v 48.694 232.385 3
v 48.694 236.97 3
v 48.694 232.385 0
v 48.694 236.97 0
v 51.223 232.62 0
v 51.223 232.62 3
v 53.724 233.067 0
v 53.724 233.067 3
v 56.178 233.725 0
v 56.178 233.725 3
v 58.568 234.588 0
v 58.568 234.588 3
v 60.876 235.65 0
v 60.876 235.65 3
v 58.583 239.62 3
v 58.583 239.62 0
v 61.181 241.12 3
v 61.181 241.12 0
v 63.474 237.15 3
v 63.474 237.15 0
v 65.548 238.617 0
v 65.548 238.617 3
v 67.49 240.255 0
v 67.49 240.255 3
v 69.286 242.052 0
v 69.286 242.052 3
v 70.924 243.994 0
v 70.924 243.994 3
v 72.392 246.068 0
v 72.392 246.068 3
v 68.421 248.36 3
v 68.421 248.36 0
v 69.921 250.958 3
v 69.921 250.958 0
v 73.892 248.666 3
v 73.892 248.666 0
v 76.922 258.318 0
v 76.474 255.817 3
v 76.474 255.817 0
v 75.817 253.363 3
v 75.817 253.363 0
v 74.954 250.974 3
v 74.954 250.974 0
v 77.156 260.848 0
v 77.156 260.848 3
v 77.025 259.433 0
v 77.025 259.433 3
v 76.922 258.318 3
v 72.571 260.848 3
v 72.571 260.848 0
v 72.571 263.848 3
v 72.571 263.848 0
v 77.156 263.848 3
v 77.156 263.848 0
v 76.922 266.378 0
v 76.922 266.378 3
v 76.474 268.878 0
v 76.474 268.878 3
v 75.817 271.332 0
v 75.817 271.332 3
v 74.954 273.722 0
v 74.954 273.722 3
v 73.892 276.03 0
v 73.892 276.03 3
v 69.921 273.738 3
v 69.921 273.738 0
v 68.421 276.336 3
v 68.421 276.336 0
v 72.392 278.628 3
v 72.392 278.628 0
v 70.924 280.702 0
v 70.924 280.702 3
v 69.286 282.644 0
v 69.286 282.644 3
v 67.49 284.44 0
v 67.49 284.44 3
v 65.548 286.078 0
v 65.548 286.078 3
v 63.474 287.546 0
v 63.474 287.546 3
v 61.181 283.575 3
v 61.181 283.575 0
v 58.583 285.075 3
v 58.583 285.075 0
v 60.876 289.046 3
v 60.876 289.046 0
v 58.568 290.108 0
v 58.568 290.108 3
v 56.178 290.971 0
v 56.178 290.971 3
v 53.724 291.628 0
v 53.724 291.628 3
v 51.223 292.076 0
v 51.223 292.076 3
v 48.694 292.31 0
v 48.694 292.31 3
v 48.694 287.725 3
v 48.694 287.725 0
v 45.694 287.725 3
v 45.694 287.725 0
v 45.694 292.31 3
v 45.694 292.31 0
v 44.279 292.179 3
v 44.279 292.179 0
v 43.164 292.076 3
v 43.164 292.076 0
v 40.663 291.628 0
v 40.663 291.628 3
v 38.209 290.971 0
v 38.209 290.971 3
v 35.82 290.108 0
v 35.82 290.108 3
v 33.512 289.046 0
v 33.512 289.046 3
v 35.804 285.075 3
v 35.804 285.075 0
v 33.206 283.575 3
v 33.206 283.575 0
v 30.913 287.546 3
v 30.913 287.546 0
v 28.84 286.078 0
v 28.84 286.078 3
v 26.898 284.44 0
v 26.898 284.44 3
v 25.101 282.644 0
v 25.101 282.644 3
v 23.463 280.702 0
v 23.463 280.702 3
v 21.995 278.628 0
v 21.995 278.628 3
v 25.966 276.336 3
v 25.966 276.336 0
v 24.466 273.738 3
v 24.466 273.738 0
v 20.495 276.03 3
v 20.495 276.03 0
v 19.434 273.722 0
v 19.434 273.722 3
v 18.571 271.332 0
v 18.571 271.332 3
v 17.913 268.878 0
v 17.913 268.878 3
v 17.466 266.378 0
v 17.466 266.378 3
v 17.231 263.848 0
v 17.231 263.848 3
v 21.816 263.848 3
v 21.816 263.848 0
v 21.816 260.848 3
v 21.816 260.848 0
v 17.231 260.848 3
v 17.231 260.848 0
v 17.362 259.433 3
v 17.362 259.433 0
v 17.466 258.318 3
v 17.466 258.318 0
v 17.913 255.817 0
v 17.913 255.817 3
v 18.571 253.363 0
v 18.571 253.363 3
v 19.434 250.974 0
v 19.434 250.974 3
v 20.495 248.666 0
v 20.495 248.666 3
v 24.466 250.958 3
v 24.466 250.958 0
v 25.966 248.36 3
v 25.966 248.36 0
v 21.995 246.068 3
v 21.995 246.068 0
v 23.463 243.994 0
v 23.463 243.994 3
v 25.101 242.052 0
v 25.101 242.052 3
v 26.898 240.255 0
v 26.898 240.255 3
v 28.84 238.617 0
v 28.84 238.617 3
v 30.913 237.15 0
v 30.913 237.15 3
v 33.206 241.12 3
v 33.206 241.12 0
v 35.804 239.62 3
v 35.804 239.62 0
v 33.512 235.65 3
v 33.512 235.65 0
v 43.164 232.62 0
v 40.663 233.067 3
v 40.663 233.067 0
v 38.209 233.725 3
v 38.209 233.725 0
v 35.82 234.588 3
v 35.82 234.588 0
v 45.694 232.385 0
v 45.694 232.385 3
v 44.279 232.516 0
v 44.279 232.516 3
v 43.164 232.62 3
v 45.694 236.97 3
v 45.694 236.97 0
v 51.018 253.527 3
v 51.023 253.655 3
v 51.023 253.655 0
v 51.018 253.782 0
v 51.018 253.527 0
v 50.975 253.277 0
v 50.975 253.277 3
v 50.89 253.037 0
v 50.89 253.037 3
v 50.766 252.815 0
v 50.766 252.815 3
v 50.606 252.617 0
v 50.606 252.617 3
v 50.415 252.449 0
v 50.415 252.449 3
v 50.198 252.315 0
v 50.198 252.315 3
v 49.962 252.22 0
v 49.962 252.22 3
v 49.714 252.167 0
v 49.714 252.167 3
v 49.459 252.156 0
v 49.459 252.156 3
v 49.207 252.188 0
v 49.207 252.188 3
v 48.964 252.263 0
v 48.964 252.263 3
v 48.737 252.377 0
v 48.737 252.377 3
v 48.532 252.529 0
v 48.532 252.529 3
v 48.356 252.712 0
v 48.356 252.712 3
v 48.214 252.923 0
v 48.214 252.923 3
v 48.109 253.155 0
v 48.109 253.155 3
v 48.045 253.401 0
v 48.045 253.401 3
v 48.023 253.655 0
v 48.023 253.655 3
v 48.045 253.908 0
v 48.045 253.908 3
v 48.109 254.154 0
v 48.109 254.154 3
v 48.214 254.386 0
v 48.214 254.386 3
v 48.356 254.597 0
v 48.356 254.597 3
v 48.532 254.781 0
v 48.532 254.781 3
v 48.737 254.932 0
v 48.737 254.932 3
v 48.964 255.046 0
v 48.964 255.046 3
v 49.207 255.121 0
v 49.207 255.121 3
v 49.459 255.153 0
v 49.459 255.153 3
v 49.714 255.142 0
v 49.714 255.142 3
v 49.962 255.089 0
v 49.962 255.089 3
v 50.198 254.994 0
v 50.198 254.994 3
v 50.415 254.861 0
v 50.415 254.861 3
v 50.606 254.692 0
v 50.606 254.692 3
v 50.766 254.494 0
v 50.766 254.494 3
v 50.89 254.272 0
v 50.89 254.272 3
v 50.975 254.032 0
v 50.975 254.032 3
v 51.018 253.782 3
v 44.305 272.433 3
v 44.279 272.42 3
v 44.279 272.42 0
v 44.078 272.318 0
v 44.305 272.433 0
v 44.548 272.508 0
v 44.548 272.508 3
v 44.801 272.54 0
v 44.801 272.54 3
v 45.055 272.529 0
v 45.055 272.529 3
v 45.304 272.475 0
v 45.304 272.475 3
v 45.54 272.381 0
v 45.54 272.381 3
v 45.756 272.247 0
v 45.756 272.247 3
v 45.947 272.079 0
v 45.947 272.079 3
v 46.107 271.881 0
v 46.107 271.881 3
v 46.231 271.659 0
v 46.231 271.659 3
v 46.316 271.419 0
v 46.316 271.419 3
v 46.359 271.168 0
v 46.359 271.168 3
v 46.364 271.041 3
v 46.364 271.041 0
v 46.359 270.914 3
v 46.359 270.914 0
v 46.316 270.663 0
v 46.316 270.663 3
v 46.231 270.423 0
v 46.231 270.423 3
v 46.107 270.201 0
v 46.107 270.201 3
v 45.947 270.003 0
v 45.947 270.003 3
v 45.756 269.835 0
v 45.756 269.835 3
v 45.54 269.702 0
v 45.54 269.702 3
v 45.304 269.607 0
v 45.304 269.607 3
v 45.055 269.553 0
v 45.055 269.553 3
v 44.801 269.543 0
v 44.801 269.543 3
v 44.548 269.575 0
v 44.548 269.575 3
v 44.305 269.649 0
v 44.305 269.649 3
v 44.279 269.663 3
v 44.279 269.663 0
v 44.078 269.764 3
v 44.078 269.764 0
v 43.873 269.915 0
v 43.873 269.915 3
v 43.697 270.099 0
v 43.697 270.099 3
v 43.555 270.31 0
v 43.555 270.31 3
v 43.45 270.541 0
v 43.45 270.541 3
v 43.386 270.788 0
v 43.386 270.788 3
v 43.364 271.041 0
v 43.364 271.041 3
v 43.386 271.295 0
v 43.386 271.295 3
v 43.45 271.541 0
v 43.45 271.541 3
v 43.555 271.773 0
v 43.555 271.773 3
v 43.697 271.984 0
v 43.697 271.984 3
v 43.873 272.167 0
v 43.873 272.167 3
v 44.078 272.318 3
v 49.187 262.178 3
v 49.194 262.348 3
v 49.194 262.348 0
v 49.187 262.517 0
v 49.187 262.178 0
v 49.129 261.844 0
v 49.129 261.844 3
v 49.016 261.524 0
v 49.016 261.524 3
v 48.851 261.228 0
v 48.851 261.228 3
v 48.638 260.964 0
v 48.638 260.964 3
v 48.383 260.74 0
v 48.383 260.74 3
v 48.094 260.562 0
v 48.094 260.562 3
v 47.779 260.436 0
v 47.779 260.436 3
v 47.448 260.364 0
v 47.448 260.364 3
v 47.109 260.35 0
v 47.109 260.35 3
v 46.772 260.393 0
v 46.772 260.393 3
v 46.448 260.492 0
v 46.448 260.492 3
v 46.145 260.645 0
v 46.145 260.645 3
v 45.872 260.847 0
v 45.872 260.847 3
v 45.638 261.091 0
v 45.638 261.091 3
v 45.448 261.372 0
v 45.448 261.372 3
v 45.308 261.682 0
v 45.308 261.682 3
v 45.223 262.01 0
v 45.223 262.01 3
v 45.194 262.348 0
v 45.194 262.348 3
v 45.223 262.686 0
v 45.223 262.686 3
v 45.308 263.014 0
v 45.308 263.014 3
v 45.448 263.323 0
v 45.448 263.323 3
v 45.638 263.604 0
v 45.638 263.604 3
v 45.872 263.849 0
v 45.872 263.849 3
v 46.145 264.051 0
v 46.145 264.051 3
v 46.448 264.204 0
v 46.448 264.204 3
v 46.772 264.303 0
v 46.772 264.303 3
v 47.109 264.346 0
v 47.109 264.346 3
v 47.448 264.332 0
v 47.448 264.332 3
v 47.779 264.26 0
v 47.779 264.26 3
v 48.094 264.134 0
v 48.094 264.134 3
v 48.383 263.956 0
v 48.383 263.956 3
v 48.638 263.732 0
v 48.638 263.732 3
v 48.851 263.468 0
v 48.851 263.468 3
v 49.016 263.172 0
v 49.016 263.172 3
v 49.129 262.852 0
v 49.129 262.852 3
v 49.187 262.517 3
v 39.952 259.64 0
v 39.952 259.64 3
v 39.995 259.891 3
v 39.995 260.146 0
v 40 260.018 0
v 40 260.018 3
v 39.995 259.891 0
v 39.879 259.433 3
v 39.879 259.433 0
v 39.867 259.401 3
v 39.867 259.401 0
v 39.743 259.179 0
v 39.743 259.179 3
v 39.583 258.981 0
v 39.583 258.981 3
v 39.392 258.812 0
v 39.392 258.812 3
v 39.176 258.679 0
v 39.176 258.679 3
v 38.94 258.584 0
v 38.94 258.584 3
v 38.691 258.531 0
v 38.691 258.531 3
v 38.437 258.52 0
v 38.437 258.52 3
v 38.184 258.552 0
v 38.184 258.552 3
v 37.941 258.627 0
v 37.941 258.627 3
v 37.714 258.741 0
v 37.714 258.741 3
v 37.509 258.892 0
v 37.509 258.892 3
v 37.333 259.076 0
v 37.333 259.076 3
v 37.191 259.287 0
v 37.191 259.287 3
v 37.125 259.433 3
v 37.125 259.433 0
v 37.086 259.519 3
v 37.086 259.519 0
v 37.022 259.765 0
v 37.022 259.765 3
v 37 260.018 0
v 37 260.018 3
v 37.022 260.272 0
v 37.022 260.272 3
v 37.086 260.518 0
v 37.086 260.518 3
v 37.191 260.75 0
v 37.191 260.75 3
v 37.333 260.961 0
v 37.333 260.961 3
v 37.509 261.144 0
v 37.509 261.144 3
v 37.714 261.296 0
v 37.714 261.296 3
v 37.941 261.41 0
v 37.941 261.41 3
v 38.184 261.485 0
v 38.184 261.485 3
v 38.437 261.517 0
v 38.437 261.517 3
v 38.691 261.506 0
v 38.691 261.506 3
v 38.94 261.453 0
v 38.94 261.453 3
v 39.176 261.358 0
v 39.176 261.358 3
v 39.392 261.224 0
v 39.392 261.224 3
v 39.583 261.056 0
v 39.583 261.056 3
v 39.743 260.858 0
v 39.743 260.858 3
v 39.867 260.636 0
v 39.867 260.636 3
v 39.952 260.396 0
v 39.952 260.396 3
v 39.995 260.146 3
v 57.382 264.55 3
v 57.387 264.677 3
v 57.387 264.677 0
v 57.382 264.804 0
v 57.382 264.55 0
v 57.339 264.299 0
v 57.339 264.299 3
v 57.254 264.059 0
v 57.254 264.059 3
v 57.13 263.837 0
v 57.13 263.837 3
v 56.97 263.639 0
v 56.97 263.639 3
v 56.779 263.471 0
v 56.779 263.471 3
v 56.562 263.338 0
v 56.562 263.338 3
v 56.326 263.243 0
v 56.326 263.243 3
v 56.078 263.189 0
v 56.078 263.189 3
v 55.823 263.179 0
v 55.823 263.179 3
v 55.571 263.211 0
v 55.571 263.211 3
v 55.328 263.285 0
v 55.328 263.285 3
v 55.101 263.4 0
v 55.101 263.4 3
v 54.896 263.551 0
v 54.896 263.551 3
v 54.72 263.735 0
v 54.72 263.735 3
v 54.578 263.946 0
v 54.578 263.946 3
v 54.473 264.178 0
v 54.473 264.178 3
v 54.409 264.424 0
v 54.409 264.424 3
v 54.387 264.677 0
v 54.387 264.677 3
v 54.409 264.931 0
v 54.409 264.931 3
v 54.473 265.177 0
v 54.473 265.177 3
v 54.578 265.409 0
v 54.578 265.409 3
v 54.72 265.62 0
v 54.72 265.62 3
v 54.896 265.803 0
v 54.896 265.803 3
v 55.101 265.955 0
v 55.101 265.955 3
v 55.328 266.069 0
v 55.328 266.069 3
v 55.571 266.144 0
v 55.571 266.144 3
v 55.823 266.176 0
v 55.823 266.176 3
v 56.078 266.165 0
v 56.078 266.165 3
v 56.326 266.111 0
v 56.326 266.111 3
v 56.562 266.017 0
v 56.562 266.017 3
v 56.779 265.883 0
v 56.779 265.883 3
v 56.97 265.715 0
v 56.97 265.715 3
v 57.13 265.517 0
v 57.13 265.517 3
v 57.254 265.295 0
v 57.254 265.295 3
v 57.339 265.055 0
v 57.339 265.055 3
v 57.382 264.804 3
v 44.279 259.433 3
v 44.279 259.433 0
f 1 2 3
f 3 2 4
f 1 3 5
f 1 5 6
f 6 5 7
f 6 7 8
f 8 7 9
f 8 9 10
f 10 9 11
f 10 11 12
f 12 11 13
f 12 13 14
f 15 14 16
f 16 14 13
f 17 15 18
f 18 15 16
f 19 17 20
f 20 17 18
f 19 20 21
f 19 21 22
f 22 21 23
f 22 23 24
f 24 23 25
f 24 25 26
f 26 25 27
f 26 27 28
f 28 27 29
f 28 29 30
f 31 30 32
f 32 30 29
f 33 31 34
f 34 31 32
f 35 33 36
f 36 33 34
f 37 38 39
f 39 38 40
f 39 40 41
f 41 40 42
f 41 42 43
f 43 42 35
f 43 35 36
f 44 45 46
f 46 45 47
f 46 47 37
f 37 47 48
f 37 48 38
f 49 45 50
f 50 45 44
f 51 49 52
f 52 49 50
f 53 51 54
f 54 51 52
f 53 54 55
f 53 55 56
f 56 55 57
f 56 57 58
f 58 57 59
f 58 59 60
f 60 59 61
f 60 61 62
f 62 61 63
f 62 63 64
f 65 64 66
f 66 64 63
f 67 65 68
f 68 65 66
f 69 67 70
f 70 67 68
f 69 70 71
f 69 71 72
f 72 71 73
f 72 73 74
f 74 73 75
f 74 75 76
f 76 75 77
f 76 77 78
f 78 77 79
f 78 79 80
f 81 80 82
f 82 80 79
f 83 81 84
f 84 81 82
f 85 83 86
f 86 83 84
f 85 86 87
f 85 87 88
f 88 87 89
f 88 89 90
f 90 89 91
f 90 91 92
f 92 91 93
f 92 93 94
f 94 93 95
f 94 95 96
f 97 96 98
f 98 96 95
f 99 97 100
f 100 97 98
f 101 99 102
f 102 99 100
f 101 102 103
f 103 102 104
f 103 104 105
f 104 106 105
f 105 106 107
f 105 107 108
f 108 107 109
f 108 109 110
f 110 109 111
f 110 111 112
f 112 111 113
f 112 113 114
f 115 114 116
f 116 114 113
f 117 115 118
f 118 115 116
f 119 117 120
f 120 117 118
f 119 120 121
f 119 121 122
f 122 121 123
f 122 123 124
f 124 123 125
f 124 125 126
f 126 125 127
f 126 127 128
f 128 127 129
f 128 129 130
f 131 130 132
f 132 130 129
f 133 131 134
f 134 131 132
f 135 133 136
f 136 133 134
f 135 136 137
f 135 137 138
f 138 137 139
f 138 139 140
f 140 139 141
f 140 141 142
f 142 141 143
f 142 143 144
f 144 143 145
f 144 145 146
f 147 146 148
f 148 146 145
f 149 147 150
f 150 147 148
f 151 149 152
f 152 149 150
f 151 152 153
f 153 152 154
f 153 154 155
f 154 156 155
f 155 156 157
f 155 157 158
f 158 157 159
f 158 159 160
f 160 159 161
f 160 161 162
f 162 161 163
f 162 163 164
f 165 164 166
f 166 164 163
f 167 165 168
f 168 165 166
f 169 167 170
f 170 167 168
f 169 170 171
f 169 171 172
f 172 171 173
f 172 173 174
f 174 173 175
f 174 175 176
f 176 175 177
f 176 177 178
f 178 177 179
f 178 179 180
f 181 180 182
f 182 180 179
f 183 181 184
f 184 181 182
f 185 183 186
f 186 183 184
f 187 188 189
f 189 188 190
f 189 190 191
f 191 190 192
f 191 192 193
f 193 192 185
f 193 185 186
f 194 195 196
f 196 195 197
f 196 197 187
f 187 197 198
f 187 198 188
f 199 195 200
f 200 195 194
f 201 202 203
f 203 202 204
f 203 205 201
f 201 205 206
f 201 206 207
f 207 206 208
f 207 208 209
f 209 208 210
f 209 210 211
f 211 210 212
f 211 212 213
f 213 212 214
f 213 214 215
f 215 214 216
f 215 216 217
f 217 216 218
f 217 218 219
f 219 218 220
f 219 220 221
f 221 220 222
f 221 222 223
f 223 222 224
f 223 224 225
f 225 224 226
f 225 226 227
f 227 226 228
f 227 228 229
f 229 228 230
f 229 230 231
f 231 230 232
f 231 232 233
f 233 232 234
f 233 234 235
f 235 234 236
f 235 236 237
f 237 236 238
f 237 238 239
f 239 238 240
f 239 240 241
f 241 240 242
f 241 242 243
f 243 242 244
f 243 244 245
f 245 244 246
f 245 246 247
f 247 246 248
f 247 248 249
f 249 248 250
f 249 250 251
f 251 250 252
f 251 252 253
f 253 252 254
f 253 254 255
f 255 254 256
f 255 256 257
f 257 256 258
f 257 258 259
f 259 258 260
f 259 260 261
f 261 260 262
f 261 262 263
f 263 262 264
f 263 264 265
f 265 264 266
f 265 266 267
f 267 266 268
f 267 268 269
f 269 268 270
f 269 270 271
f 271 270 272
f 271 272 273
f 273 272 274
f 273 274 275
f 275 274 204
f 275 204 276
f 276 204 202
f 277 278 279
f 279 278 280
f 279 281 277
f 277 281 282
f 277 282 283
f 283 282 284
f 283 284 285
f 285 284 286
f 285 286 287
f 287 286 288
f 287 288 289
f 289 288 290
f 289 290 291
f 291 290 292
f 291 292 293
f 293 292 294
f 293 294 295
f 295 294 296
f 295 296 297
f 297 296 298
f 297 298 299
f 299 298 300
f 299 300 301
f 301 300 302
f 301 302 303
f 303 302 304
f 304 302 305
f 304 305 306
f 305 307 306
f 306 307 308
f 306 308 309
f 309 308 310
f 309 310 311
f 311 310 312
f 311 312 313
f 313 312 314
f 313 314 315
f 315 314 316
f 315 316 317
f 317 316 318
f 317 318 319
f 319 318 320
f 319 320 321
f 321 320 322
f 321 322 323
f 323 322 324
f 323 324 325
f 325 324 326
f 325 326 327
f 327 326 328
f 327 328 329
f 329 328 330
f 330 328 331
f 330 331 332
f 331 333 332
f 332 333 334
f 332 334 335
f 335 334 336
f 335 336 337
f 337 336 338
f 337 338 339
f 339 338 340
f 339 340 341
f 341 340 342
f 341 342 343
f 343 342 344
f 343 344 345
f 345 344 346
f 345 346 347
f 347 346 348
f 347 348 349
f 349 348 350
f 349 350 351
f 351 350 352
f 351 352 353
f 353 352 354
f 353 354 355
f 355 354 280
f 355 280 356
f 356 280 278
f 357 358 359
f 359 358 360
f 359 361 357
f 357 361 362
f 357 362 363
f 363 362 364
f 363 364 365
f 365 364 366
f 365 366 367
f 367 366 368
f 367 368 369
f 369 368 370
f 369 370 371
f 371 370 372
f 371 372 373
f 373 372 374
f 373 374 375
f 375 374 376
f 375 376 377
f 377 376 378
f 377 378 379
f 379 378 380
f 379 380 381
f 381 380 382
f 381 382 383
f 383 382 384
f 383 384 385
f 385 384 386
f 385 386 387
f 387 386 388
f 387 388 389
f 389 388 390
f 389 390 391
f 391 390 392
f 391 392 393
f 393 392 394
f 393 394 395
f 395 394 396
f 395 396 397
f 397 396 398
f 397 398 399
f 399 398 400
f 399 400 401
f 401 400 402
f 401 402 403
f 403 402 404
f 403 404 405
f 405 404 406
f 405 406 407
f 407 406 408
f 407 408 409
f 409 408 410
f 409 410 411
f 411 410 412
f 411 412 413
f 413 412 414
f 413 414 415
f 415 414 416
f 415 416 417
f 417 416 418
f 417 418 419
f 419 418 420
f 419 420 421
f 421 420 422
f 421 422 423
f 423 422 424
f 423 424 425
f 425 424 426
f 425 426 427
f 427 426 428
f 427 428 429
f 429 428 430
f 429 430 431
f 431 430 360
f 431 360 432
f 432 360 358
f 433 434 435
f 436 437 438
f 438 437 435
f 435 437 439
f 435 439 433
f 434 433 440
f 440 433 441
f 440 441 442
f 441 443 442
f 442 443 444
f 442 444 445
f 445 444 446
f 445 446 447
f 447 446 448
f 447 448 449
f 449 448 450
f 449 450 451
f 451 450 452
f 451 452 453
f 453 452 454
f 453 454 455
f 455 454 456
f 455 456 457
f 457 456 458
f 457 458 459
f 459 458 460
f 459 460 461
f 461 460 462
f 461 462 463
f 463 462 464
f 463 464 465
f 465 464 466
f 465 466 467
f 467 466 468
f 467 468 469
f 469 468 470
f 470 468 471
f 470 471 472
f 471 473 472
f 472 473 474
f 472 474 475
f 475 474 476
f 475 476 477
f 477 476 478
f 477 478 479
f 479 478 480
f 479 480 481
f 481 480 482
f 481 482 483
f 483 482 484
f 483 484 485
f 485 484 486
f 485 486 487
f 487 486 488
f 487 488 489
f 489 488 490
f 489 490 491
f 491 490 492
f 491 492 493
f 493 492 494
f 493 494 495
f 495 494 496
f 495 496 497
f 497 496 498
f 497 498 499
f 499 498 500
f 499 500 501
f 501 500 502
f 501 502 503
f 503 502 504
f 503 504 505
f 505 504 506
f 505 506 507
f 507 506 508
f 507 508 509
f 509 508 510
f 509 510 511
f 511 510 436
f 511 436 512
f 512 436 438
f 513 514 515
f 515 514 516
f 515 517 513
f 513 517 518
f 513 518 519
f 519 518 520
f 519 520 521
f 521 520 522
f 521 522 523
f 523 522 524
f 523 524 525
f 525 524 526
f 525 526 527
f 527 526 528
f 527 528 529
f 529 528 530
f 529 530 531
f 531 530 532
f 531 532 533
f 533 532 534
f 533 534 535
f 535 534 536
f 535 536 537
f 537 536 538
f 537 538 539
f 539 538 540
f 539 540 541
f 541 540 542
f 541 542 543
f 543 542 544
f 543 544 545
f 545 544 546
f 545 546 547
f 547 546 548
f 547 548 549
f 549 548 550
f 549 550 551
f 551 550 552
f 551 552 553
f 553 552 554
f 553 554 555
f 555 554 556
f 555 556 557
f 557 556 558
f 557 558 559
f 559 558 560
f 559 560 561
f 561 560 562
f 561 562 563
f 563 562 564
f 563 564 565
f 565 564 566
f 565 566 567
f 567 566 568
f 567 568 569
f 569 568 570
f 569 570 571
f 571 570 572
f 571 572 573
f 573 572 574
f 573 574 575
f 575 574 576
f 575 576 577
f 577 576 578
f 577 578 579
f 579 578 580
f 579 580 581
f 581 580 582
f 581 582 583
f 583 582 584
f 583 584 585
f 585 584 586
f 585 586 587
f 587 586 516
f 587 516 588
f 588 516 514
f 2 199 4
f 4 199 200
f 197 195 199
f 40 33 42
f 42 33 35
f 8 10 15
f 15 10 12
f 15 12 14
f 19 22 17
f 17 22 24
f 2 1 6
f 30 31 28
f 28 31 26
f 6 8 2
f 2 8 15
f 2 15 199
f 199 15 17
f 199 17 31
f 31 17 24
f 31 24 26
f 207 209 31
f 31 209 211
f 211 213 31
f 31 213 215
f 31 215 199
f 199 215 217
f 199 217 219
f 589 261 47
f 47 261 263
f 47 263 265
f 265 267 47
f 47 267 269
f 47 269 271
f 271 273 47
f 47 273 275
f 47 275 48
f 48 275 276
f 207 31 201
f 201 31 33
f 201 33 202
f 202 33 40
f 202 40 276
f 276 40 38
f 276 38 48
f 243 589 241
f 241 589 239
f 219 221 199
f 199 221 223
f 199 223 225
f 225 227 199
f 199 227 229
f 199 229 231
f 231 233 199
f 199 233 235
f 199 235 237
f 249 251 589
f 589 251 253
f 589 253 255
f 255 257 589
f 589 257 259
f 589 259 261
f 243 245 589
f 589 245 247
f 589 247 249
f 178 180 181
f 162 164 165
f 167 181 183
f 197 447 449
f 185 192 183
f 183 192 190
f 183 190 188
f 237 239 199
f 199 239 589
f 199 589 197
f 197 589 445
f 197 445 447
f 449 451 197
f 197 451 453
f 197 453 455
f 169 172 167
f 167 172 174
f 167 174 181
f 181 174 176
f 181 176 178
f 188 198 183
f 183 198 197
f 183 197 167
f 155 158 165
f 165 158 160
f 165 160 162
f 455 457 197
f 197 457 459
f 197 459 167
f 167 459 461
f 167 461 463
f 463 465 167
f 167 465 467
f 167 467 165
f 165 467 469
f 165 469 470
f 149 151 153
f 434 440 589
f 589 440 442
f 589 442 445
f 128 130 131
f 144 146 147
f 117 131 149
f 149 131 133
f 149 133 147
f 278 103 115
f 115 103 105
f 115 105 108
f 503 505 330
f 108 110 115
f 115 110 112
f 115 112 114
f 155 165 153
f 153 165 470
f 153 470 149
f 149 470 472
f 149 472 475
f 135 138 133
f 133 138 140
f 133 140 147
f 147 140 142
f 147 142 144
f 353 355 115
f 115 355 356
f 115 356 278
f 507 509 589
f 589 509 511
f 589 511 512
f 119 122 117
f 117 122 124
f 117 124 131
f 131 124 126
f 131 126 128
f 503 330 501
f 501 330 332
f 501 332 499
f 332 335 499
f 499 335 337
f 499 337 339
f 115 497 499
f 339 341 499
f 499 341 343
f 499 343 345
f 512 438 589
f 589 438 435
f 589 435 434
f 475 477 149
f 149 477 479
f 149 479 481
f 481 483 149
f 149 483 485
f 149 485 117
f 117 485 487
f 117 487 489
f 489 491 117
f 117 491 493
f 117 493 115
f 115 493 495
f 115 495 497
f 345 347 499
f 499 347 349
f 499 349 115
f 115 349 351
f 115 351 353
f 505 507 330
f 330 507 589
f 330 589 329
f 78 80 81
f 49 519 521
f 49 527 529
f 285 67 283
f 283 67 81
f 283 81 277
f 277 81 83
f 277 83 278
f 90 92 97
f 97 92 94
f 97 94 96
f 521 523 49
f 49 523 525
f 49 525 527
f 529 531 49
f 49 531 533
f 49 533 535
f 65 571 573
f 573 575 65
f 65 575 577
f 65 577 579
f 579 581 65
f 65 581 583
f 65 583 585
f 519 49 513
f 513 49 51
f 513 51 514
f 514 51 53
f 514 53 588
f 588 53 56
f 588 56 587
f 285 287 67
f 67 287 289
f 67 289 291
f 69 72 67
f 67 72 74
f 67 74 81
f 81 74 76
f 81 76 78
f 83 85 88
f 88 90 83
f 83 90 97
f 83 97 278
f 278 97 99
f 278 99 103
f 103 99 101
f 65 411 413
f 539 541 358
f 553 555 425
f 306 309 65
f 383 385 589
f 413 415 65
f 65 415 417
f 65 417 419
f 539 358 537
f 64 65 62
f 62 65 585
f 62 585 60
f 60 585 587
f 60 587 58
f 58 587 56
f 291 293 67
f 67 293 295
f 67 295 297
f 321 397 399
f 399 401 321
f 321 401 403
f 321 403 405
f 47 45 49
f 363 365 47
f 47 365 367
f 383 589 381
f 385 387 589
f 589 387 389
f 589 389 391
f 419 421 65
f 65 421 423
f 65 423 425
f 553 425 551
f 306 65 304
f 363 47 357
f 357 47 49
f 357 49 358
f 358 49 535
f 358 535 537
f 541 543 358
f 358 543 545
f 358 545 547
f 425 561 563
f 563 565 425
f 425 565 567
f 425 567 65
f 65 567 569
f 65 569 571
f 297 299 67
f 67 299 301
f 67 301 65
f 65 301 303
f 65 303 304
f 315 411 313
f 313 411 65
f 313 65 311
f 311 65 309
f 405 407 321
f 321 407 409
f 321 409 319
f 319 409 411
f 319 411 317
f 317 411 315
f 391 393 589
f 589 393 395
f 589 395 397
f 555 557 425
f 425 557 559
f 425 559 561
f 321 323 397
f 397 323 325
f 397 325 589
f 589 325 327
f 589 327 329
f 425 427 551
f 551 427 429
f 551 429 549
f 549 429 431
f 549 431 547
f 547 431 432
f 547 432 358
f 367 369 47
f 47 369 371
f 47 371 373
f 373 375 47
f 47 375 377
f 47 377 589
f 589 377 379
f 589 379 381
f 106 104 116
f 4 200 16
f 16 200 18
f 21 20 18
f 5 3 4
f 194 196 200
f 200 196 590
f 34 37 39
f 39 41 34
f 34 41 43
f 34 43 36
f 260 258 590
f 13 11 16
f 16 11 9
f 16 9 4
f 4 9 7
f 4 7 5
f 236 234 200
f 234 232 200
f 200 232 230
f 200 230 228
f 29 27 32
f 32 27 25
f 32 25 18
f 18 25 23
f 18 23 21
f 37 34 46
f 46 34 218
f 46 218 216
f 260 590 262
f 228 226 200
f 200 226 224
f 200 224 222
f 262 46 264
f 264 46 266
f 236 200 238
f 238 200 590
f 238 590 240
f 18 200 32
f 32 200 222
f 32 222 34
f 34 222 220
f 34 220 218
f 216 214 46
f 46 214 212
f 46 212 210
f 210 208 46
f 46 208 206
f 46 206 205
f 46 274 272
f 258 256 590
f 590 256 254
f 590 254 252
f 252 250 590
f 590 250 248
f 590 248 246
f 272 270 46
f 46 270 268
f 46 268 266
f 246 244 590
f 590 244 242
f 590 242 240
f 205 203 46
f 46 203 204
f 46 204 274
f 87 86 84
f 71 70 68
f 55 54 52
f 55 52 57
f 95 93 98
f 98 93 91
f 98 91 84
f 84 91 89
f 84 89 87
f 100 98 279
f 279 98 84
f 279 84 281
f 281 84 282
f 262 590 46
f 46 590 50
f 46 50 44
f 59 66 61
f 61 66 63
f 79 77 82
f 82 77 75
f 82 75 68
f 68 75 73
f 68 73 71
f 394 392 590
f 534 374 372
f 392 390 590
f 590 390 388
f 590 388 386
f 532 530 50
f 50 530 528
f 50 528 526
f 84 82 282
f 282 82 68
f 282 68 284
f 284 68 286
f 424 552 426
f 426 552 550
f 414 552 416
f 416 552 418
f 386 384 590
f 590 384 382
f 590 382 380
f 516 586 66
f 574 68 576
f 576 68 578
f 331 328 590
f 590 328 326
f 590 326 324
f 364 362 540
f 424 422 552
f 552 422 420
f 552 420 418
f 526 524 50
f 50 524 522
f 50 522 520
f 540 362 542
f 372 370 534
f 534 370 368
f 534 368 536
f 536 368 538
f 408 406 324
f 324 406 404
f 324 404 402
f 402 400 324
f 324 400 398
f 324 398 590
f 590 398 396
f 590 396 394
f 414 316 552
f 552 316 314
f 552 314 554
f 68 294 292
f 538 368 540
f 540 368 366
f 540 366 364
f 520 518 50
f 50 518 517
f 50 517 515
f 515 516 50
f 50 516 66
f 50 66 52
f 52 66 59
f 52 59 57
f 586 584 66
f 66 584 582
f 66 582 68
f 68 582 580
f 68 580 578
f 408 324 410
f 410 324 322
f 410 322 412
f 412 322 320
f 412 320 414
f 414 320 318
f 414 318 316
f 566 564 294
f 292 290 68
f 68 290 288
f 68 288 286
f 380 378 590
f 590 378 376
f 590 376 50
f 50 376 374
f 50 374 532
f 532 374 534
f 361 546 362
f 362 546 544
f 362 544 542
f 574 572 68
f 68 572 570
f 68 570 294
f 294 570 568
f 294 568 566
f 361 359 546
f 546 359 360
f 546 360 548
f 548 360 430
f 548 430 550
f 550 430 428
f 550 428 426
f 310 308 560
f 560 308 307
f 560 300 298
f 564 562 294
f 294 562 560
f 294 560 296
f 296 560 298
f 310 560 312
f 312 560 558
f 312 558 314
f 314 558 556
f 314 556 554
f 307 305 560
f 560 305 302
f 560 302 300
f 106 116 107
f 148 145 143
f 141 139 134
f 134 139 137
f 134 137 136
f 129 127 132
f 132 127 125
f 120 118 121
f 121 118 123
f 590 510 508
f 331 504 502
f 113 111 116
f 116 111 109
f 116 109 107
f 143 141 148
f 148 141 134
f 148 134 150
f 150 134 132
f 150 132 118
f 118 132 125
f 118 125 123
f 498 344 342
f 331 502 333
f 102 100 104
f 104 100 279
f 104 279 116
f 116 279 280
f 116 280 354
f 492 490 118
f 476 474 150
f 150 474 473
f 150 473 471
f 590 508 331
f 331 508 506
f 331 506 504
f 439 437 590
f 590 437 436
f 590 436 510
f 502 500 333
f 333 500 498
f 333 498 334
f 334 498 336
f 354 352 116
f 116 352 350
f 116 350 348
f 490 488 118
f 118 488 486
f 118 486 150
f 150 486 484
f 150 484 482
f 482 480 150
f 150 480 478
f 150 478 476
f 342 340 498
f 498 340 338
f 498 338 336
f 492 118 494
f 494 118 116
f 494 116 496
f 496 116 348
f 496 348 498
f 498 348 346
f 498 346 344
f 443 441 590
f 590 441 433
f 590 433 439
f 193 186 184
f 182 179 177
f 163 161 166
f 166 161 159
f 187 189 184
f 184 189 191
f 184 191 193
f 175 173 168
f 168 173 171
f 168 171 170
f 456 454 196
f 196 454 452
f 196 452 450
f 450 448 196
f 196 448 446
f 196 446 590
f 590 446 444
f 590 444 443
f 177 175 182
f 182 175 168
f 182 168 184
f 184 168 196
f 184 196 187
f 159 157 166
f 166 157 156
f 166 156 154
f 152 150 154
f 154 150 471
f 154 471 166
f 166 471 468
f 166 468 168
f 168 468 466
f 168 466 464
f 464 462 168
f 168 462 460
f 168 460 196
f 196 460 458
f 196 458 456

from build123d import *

# Parameters (mm, degrees)
MODEL_R                 = 1.5
MODEL_R_2               = 2
SALIENTE_EXTRUIR1_DEPTH = 3


with BuildPart() as part:
    # Model → Saliente-Extruir1 (new body)
    with BuildSketch(Plane.XY):
        with BuildLine():
            Line((63.474021053, 287.546128202), (61.181496903, 283.575359896))
            Line((61.181496903, 283.575359896), (58.583420692, 285.075359896))
            Line((58.583420692, 285.075359896), (60.875944842, 289.046128202))
            ThreePointArc((60.875944842, 289.046128202), (54.958316034, 291.325637152), (48.693744681, 292.310338897))
            Line((48.693744681, 292.310338897), (48.693744681, 287.725290597))
            Line((48.693744681, 287.725290597), (45.693744681, 287.725290597))
            Line((45.693744681, 287.725290597), (45.693744681, 292.310338897))
            ThreePointArc((45.693744681, 292.310338897), (39.429173328, 291.325637152), (33.51154452, 289.046128202))
            Line((33.51154452, 289.046128202), (35.80406867, 285.075359896))
            Line((35.80406867, 285.075359896), (33.205992459, 283.575359896))
            Line((33.205992459, 283.575359896), (30.913468309, 287.546128202))
            ThreePointArc((30.913468309, 287.546128202), (25.980541245, 283.561065799), (21.995478843, 278.628138736))
            Line((21.995478843, 278.628138736), (25.966247149, 276.335614586))
            Line((25.966247149, 276.335614586), (24.466247149, 273.737538374))
            Line((24.466247149, 273.737538374), (20.495478843, 276.030062525))
            ThreePointArc((20.495478843, 276.030062525), (18.215969892, 270.112433717), (17.231268148, 263.847862364))
            Line((17.231268148, 263.847862364), (21.816316448, 263.847862364))
            Line((21.816316448, 263.847862364), (21.816316448, 260.847862364))
            Line((21.816316448, 260.847862364), (17.231268148, 260.847862364))
            ThreePointArc((17.231268148, 260.847862364), (18.215969892, 254.583291011), (20.495478843, 248.665662203))
            Line((20.495478843, 248.665662203), (24.466247149, 250.958186353))
            Line((24.466247149, 250.958186353), (25.966247149, 248.360110142))
            Line((25.966247149, 248.360110142), (21.995478843, 246.067585992))
            ThreePointArc((21.995478843, 246.067585992), (25.980541245, 241.134658928), (30.913468309, 237.149596526))
            Line((30.913468309, 237.149596526), (33.205992459, 241.120364831))
            Line((33.205992459, 241.120364831), (35.80406867, 239.620364831))
            Line((35.80406867, 239.620364831), (33.51154452, 235.649596526))
            ThreePointArc((33.51154452, 235.649596526), (39.429173328, 233.370087575), (45.693744681, 232.385385831))
            Line((45.693744681, 232.385385831), (45.693744681, 236.970434131))
            Line((45.693744681, 236.970434131), (48.693744681, 236.970434131))
            Line((48.693744681, 236.970434131), (48.693744681, 232.385385831))
            ThreePointArc((48.693744681, 232.385385831), (54.958316034, 233.370087575), (60.875944842, 235.649596526))
            Line((60.875944842, 235.649596526), (58.583420692, 239.620364831))
            Line((58.583420692, 239.620364831), (61.181496903, 241.120364831))
            Line((61.181496903, 241.120364831), (63.474021053, 237.149596526))
            ThreePointArc((63.474021053, 237.149596526), (68.406948117, 241.134658928), (72.392010519, 246.067585992))
            Line((72.392010519, 246.067585992), (68.421242213, 248.360110142))
            Line((68.421242213, 248.360110142), (69.921242213, 250.958186353))
            Line((69.921242213, 250.958186353), (73.892010519, 248.665662203))
            ThreePointArc((73.892010519, 248.665662203), (76.17151947, 254.583291011), (77.156221214, 260.847862364))
            Line((77.156221214, 260.847862364), (72.571172914, 260.847862364))
            Line((72.571172914, 260.847862364), (72.571172914, 263.847862364))
            Line((72.571172914, 263.847862364), (77.156221214, 263.847862364))
            ThreePointArc((77.156221214, 263.847862364), (76.17151947, 270.112433717), (73.892010519, 276.030062525))
            Line((73.892010519, 276.030062525), (69.921242213, 273.737538374))
            Line((69.921242213, 273.737538374), (68.421242213, 276.335614586))
            Line((68.421242213, 276.335614586), (72.392010519, 278.628138736))
            ThreePointArc((72.392010519, 278.628138736), (68.406948117, 283.561065799), (63.474021053, 287.546128202))
        make_face()
        with Locations((38.500412244, 260.018490958)):
            Circle(MODEL_R, mode=Mode.SUBTRACT)
        with Locations((47.193744681, 262.347862364)):
            Circle(MODEL_R_2, mode=Mode.SUBTRACT)
        with Locations((49.523116087, 253.654529927)):
            Circle(MODEL_R, mode=Mode.SUBTRACT)
        with Locations((44.864373275, 271.0411948)):
            Circle(MODEL_R, mode=Mode.SUBTRACT)
        with Locations((55.887077118, 264.67723377)):
            Circle(MODEL_R, mode=Mode.SUBTRACT)
    extrude(amount=SALIENTE_EXTRUIR1_DEPTH)


solid = part.part
